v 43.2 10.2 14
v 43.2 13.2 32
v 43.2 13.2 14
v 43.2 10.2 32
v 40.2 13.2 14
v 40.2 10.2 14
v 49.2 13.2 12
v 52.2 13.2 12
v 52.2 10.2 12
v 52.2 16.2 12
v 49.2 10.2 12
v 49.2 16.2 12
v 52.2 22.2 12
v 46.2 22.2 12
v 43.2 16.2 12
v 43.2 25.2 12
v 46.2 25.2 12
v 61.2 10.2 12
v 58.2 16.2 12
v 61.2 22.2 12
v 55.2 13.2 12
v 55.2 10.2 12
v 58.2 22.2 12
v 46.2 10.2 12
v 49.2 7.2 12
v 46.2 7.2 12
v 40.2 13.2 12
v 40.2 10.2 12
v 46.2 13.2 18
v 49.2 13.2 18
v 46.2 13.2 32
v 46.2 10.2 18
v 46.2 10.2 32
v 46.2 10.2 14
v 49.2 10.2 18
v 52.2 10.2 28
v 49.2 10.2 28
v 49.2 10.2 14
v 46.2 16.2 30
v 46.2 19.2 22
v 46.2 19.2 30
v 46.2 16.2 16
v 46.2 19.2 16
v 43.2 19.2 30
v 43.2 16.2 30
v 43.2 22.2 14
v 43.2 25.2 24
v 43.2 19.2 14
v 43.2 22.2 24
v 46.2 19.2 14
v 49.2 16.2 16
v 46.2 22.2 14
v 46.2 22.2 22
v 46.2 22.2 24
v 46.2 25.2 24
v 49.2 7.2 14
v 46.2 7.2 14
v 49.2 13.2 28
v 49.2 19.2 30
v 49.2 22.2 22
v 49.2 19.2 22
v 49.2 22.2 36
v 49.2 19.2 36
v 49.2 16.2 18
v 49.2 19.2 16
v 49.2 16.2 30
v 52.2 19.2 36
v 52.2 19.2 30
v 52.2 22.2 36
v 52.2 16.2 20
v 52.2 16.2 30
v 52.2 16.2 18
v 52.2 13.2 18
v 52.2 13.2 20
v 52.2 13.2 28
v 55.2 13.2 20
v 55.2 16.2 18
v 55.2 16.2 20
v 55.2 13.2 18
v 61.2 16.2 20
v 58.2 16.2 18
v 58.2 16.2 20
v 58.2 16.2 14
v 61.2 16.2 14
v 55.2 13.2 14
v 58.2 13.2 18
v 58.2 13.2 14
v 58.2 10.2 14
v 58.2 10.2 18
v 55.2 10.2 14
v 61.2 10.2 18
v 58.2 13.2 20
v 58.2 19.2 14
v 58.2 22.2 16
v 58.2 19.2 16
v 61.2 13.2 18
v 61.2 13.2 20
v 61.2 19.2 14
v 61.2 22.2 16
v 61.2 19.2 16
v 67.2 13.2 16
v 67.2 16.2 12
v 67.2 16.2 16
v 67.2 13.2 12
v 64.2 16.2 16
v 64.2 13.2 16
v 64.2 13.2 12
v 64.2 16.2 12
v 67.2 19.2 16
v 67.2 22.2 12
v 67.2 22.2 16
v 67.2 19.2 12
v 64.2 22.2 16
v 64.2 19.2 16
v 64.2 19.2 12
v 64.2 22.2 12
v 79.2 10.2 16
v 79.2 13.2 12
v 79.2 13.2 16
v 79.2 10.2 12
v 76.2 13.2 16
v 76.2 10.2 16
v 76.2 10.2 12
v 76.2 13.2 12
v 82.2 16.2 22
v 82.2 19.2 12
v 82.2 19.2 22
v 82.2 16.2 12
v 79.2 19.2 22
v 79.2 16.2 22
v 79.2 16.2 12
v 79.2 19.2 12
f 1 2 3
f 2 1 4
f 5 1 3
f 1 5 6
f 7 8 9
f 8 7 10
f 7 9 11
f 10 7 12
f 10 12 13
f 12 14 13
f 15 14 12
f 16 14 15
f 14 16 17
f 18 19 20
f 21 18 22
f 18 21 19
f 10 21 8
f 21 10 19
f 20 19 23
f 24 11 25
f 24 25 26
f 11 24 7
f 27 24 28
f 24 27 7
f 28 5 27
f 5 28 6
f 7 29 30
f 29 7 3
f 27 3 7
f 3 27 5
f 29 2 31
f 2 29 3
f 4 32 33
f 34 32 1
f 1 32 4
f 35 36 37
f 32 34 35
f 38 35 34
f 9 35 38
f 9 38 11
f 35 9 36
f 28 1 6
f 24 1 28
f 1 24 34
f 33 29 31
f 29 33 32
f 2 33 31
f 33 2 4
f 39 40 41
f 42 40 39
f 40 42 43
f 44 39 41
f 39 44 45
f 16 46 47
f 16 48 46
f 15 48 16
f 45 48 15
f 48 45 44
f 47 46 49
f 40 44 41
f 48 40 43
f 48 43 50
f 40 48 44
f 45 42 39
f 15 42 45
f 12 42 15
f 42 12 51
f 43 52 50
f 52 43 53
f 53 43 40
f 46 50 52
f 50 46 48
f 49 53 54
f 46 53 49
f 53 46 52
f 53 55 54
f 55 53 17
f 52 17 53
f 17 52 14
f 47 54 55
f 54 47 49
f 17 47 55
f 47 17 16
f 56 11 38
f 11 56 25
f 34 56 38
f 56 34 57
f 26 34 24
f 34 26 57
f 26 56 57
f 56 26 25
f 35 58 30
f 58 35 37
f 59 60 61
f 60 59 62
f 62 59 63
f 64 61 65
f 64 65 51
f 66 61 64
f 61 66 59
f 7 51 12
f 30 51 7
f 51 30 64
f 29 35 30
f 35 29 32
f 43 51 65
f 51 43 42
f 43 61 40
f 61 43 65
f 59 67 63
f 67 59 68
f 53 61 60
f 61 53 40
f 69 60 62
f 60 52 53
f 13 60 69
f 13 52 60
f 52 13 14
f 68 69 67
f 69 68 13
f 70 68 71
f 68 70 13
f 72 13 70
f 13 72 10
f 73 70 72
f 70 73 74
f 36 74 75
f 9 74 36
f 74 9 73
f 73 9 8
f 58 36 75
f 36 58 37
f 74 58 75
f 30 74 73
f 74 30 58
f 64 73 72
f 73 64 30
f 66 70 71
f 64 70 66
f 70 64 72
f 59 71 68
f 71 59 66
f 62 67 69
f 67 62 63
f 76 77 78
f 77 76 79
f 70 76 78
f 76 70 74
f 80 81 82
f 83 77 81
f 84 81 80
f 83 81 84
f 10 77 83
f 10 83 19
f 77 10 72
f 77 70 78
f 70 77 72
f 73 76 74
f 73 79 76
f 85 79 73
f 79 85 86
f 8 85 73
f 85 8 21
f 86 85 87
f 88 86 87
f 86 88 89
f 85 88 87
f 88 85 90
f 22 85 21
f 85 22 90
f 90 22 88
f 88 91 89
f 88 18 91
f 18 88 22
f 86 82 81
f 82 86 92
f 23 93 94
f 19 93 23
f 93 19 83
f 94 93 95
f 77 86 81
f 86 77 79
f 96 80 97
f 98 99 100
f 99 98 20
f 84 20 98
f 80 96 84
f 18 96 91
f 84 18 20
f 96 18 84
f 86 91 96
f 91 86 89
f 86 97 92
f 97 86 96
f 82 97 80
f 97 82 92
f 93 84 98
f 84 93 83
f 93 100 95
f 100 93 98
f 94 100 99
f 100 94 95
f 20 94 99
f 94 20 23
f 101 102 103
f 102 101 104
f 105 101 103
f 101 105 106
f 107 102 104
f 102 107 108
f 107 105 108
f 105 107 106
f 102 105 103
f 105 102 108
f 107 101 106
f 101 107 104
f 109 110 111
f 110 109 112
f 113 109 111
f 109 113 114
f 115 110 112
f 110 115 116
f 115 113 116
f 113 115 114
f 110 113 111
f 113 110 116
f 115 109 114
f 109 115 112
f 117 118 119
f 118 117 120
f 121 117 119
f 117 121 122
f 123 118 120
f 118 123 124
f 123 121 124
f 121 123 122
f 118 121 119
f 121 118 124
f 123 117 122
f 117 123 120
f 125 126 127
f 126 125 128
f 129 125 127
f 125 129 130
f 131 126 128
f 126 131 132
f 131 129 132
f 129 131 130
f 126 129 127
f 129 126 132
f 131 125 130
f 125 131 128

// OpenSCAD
union() {
	translate(v = [40.2, 10.200000000000001, 12.0]) {
		cube(size = [3.0, 3.0, 2.0]);
	}
	translate(v = [43.2, 10.200000000000001, 12.0]) {
		cube(size = [3.0, 3.0, 20.0]);
	}
	translate(v = [43.2, 16.200000000000003, 12.0]) {
		cube(size = [3.0, 3.0, 18.0]);
	}
	translate(v = [43.2, 19.200000000000003, 12.0]) {
		cube(size = [3.0, 3.0, 2.0]);
	}
	translate(v = [43.2, 22.200000000000003, 12.0]) {
		cube(size = [3.0, 3.0, 12.0]);
	}
	translate(v = [46.2, 7.200000000000001, 12.0]) {
		cube(size = [3.0, 3.0, 2.0]);
	}
	translate(v = [46.2, 10.200000000000001, 12.0]) {
		cube(size = [3.0, 3.0, 6.0]);
	}
	translate(v = [46.2, 16.200000000000003, 12.0]) {
		cube(size = [3.0, 3.0, 4.0]);
	}
	translate(v = [46.2, 19.200000000000003, 12.0]) {
		cube(size = [3.0, 3.0, 10.0]);
	}
	translate(v = [49.2, 10.200000000000001, 12.0]) {
		cube(size = [3.0, 3.0, 16.0]);
	}
	translate(v = [49.2, 13.200000000000001, 12.0]) {
		cube(size = [3.0, 3.0, 6.0]);
	}
	translate(v = [49.2, 16.200000000000003, 12.0]) {
		cube(size = [3.0, 3.0, 18.0]);
	}
	translate(v = [49.2, 19.200000000000003, 12.0]) {
		cube(size = [3.0, 3.0, 24.0]);
	}
	translate(v = [52.2, 13.200000000000001, 12.0]) {
		cube(size = [3.0, 3.0, 8.0]);
	}
	translate(v = [55.2, 10.200000000000001, 12.0]) {
		cube(size = [3.0, 3.0, 2.0]);
	}
	translate(v = [55.2, 13.200000000000001, 12.0]) {
		cube(size = [3.0, 3.0, 6.0]);
	}
	translate(v = [58.2, 10.200000000000001, 12.0]) {
		cube(size = [3.0, 3.0, 6.0]);
	}
	translate(v = [58.2, 13.200000000000001, 12.0]) {
		cube(size = [3.0, 3.0, 8.0]);
	}
	translate(v = [58.2, 16.200000000000003, 12.0]) {
		cube(size = [3.0, 3.0, 2.0]);
	}
	translate(v = [58.2, 19.200000000000003, 12.0]) {
		cube(size = [3.0, 3.0, 4.0]);
	}
	translate(v = [64.2, 13.200000000000001, 12.0]) {
		cube(size = [3.0, 3.0, 4.0]);
	}
	translate(v = [64.2, 19.200000000000003, 12.0]) {
		cube(size = [3.0, 3.0, 4.0]);
	}
	translate(v = [76.2, 10.200000000000001, 12.0]) {
		cube(size = [3.0, 3.0, 4.0]);
	}
	translate(v = [79.2, 16.200000000000003, 12.0]) {
		cube(size = [3.0, 3.0, 10.0]);
	}
}
